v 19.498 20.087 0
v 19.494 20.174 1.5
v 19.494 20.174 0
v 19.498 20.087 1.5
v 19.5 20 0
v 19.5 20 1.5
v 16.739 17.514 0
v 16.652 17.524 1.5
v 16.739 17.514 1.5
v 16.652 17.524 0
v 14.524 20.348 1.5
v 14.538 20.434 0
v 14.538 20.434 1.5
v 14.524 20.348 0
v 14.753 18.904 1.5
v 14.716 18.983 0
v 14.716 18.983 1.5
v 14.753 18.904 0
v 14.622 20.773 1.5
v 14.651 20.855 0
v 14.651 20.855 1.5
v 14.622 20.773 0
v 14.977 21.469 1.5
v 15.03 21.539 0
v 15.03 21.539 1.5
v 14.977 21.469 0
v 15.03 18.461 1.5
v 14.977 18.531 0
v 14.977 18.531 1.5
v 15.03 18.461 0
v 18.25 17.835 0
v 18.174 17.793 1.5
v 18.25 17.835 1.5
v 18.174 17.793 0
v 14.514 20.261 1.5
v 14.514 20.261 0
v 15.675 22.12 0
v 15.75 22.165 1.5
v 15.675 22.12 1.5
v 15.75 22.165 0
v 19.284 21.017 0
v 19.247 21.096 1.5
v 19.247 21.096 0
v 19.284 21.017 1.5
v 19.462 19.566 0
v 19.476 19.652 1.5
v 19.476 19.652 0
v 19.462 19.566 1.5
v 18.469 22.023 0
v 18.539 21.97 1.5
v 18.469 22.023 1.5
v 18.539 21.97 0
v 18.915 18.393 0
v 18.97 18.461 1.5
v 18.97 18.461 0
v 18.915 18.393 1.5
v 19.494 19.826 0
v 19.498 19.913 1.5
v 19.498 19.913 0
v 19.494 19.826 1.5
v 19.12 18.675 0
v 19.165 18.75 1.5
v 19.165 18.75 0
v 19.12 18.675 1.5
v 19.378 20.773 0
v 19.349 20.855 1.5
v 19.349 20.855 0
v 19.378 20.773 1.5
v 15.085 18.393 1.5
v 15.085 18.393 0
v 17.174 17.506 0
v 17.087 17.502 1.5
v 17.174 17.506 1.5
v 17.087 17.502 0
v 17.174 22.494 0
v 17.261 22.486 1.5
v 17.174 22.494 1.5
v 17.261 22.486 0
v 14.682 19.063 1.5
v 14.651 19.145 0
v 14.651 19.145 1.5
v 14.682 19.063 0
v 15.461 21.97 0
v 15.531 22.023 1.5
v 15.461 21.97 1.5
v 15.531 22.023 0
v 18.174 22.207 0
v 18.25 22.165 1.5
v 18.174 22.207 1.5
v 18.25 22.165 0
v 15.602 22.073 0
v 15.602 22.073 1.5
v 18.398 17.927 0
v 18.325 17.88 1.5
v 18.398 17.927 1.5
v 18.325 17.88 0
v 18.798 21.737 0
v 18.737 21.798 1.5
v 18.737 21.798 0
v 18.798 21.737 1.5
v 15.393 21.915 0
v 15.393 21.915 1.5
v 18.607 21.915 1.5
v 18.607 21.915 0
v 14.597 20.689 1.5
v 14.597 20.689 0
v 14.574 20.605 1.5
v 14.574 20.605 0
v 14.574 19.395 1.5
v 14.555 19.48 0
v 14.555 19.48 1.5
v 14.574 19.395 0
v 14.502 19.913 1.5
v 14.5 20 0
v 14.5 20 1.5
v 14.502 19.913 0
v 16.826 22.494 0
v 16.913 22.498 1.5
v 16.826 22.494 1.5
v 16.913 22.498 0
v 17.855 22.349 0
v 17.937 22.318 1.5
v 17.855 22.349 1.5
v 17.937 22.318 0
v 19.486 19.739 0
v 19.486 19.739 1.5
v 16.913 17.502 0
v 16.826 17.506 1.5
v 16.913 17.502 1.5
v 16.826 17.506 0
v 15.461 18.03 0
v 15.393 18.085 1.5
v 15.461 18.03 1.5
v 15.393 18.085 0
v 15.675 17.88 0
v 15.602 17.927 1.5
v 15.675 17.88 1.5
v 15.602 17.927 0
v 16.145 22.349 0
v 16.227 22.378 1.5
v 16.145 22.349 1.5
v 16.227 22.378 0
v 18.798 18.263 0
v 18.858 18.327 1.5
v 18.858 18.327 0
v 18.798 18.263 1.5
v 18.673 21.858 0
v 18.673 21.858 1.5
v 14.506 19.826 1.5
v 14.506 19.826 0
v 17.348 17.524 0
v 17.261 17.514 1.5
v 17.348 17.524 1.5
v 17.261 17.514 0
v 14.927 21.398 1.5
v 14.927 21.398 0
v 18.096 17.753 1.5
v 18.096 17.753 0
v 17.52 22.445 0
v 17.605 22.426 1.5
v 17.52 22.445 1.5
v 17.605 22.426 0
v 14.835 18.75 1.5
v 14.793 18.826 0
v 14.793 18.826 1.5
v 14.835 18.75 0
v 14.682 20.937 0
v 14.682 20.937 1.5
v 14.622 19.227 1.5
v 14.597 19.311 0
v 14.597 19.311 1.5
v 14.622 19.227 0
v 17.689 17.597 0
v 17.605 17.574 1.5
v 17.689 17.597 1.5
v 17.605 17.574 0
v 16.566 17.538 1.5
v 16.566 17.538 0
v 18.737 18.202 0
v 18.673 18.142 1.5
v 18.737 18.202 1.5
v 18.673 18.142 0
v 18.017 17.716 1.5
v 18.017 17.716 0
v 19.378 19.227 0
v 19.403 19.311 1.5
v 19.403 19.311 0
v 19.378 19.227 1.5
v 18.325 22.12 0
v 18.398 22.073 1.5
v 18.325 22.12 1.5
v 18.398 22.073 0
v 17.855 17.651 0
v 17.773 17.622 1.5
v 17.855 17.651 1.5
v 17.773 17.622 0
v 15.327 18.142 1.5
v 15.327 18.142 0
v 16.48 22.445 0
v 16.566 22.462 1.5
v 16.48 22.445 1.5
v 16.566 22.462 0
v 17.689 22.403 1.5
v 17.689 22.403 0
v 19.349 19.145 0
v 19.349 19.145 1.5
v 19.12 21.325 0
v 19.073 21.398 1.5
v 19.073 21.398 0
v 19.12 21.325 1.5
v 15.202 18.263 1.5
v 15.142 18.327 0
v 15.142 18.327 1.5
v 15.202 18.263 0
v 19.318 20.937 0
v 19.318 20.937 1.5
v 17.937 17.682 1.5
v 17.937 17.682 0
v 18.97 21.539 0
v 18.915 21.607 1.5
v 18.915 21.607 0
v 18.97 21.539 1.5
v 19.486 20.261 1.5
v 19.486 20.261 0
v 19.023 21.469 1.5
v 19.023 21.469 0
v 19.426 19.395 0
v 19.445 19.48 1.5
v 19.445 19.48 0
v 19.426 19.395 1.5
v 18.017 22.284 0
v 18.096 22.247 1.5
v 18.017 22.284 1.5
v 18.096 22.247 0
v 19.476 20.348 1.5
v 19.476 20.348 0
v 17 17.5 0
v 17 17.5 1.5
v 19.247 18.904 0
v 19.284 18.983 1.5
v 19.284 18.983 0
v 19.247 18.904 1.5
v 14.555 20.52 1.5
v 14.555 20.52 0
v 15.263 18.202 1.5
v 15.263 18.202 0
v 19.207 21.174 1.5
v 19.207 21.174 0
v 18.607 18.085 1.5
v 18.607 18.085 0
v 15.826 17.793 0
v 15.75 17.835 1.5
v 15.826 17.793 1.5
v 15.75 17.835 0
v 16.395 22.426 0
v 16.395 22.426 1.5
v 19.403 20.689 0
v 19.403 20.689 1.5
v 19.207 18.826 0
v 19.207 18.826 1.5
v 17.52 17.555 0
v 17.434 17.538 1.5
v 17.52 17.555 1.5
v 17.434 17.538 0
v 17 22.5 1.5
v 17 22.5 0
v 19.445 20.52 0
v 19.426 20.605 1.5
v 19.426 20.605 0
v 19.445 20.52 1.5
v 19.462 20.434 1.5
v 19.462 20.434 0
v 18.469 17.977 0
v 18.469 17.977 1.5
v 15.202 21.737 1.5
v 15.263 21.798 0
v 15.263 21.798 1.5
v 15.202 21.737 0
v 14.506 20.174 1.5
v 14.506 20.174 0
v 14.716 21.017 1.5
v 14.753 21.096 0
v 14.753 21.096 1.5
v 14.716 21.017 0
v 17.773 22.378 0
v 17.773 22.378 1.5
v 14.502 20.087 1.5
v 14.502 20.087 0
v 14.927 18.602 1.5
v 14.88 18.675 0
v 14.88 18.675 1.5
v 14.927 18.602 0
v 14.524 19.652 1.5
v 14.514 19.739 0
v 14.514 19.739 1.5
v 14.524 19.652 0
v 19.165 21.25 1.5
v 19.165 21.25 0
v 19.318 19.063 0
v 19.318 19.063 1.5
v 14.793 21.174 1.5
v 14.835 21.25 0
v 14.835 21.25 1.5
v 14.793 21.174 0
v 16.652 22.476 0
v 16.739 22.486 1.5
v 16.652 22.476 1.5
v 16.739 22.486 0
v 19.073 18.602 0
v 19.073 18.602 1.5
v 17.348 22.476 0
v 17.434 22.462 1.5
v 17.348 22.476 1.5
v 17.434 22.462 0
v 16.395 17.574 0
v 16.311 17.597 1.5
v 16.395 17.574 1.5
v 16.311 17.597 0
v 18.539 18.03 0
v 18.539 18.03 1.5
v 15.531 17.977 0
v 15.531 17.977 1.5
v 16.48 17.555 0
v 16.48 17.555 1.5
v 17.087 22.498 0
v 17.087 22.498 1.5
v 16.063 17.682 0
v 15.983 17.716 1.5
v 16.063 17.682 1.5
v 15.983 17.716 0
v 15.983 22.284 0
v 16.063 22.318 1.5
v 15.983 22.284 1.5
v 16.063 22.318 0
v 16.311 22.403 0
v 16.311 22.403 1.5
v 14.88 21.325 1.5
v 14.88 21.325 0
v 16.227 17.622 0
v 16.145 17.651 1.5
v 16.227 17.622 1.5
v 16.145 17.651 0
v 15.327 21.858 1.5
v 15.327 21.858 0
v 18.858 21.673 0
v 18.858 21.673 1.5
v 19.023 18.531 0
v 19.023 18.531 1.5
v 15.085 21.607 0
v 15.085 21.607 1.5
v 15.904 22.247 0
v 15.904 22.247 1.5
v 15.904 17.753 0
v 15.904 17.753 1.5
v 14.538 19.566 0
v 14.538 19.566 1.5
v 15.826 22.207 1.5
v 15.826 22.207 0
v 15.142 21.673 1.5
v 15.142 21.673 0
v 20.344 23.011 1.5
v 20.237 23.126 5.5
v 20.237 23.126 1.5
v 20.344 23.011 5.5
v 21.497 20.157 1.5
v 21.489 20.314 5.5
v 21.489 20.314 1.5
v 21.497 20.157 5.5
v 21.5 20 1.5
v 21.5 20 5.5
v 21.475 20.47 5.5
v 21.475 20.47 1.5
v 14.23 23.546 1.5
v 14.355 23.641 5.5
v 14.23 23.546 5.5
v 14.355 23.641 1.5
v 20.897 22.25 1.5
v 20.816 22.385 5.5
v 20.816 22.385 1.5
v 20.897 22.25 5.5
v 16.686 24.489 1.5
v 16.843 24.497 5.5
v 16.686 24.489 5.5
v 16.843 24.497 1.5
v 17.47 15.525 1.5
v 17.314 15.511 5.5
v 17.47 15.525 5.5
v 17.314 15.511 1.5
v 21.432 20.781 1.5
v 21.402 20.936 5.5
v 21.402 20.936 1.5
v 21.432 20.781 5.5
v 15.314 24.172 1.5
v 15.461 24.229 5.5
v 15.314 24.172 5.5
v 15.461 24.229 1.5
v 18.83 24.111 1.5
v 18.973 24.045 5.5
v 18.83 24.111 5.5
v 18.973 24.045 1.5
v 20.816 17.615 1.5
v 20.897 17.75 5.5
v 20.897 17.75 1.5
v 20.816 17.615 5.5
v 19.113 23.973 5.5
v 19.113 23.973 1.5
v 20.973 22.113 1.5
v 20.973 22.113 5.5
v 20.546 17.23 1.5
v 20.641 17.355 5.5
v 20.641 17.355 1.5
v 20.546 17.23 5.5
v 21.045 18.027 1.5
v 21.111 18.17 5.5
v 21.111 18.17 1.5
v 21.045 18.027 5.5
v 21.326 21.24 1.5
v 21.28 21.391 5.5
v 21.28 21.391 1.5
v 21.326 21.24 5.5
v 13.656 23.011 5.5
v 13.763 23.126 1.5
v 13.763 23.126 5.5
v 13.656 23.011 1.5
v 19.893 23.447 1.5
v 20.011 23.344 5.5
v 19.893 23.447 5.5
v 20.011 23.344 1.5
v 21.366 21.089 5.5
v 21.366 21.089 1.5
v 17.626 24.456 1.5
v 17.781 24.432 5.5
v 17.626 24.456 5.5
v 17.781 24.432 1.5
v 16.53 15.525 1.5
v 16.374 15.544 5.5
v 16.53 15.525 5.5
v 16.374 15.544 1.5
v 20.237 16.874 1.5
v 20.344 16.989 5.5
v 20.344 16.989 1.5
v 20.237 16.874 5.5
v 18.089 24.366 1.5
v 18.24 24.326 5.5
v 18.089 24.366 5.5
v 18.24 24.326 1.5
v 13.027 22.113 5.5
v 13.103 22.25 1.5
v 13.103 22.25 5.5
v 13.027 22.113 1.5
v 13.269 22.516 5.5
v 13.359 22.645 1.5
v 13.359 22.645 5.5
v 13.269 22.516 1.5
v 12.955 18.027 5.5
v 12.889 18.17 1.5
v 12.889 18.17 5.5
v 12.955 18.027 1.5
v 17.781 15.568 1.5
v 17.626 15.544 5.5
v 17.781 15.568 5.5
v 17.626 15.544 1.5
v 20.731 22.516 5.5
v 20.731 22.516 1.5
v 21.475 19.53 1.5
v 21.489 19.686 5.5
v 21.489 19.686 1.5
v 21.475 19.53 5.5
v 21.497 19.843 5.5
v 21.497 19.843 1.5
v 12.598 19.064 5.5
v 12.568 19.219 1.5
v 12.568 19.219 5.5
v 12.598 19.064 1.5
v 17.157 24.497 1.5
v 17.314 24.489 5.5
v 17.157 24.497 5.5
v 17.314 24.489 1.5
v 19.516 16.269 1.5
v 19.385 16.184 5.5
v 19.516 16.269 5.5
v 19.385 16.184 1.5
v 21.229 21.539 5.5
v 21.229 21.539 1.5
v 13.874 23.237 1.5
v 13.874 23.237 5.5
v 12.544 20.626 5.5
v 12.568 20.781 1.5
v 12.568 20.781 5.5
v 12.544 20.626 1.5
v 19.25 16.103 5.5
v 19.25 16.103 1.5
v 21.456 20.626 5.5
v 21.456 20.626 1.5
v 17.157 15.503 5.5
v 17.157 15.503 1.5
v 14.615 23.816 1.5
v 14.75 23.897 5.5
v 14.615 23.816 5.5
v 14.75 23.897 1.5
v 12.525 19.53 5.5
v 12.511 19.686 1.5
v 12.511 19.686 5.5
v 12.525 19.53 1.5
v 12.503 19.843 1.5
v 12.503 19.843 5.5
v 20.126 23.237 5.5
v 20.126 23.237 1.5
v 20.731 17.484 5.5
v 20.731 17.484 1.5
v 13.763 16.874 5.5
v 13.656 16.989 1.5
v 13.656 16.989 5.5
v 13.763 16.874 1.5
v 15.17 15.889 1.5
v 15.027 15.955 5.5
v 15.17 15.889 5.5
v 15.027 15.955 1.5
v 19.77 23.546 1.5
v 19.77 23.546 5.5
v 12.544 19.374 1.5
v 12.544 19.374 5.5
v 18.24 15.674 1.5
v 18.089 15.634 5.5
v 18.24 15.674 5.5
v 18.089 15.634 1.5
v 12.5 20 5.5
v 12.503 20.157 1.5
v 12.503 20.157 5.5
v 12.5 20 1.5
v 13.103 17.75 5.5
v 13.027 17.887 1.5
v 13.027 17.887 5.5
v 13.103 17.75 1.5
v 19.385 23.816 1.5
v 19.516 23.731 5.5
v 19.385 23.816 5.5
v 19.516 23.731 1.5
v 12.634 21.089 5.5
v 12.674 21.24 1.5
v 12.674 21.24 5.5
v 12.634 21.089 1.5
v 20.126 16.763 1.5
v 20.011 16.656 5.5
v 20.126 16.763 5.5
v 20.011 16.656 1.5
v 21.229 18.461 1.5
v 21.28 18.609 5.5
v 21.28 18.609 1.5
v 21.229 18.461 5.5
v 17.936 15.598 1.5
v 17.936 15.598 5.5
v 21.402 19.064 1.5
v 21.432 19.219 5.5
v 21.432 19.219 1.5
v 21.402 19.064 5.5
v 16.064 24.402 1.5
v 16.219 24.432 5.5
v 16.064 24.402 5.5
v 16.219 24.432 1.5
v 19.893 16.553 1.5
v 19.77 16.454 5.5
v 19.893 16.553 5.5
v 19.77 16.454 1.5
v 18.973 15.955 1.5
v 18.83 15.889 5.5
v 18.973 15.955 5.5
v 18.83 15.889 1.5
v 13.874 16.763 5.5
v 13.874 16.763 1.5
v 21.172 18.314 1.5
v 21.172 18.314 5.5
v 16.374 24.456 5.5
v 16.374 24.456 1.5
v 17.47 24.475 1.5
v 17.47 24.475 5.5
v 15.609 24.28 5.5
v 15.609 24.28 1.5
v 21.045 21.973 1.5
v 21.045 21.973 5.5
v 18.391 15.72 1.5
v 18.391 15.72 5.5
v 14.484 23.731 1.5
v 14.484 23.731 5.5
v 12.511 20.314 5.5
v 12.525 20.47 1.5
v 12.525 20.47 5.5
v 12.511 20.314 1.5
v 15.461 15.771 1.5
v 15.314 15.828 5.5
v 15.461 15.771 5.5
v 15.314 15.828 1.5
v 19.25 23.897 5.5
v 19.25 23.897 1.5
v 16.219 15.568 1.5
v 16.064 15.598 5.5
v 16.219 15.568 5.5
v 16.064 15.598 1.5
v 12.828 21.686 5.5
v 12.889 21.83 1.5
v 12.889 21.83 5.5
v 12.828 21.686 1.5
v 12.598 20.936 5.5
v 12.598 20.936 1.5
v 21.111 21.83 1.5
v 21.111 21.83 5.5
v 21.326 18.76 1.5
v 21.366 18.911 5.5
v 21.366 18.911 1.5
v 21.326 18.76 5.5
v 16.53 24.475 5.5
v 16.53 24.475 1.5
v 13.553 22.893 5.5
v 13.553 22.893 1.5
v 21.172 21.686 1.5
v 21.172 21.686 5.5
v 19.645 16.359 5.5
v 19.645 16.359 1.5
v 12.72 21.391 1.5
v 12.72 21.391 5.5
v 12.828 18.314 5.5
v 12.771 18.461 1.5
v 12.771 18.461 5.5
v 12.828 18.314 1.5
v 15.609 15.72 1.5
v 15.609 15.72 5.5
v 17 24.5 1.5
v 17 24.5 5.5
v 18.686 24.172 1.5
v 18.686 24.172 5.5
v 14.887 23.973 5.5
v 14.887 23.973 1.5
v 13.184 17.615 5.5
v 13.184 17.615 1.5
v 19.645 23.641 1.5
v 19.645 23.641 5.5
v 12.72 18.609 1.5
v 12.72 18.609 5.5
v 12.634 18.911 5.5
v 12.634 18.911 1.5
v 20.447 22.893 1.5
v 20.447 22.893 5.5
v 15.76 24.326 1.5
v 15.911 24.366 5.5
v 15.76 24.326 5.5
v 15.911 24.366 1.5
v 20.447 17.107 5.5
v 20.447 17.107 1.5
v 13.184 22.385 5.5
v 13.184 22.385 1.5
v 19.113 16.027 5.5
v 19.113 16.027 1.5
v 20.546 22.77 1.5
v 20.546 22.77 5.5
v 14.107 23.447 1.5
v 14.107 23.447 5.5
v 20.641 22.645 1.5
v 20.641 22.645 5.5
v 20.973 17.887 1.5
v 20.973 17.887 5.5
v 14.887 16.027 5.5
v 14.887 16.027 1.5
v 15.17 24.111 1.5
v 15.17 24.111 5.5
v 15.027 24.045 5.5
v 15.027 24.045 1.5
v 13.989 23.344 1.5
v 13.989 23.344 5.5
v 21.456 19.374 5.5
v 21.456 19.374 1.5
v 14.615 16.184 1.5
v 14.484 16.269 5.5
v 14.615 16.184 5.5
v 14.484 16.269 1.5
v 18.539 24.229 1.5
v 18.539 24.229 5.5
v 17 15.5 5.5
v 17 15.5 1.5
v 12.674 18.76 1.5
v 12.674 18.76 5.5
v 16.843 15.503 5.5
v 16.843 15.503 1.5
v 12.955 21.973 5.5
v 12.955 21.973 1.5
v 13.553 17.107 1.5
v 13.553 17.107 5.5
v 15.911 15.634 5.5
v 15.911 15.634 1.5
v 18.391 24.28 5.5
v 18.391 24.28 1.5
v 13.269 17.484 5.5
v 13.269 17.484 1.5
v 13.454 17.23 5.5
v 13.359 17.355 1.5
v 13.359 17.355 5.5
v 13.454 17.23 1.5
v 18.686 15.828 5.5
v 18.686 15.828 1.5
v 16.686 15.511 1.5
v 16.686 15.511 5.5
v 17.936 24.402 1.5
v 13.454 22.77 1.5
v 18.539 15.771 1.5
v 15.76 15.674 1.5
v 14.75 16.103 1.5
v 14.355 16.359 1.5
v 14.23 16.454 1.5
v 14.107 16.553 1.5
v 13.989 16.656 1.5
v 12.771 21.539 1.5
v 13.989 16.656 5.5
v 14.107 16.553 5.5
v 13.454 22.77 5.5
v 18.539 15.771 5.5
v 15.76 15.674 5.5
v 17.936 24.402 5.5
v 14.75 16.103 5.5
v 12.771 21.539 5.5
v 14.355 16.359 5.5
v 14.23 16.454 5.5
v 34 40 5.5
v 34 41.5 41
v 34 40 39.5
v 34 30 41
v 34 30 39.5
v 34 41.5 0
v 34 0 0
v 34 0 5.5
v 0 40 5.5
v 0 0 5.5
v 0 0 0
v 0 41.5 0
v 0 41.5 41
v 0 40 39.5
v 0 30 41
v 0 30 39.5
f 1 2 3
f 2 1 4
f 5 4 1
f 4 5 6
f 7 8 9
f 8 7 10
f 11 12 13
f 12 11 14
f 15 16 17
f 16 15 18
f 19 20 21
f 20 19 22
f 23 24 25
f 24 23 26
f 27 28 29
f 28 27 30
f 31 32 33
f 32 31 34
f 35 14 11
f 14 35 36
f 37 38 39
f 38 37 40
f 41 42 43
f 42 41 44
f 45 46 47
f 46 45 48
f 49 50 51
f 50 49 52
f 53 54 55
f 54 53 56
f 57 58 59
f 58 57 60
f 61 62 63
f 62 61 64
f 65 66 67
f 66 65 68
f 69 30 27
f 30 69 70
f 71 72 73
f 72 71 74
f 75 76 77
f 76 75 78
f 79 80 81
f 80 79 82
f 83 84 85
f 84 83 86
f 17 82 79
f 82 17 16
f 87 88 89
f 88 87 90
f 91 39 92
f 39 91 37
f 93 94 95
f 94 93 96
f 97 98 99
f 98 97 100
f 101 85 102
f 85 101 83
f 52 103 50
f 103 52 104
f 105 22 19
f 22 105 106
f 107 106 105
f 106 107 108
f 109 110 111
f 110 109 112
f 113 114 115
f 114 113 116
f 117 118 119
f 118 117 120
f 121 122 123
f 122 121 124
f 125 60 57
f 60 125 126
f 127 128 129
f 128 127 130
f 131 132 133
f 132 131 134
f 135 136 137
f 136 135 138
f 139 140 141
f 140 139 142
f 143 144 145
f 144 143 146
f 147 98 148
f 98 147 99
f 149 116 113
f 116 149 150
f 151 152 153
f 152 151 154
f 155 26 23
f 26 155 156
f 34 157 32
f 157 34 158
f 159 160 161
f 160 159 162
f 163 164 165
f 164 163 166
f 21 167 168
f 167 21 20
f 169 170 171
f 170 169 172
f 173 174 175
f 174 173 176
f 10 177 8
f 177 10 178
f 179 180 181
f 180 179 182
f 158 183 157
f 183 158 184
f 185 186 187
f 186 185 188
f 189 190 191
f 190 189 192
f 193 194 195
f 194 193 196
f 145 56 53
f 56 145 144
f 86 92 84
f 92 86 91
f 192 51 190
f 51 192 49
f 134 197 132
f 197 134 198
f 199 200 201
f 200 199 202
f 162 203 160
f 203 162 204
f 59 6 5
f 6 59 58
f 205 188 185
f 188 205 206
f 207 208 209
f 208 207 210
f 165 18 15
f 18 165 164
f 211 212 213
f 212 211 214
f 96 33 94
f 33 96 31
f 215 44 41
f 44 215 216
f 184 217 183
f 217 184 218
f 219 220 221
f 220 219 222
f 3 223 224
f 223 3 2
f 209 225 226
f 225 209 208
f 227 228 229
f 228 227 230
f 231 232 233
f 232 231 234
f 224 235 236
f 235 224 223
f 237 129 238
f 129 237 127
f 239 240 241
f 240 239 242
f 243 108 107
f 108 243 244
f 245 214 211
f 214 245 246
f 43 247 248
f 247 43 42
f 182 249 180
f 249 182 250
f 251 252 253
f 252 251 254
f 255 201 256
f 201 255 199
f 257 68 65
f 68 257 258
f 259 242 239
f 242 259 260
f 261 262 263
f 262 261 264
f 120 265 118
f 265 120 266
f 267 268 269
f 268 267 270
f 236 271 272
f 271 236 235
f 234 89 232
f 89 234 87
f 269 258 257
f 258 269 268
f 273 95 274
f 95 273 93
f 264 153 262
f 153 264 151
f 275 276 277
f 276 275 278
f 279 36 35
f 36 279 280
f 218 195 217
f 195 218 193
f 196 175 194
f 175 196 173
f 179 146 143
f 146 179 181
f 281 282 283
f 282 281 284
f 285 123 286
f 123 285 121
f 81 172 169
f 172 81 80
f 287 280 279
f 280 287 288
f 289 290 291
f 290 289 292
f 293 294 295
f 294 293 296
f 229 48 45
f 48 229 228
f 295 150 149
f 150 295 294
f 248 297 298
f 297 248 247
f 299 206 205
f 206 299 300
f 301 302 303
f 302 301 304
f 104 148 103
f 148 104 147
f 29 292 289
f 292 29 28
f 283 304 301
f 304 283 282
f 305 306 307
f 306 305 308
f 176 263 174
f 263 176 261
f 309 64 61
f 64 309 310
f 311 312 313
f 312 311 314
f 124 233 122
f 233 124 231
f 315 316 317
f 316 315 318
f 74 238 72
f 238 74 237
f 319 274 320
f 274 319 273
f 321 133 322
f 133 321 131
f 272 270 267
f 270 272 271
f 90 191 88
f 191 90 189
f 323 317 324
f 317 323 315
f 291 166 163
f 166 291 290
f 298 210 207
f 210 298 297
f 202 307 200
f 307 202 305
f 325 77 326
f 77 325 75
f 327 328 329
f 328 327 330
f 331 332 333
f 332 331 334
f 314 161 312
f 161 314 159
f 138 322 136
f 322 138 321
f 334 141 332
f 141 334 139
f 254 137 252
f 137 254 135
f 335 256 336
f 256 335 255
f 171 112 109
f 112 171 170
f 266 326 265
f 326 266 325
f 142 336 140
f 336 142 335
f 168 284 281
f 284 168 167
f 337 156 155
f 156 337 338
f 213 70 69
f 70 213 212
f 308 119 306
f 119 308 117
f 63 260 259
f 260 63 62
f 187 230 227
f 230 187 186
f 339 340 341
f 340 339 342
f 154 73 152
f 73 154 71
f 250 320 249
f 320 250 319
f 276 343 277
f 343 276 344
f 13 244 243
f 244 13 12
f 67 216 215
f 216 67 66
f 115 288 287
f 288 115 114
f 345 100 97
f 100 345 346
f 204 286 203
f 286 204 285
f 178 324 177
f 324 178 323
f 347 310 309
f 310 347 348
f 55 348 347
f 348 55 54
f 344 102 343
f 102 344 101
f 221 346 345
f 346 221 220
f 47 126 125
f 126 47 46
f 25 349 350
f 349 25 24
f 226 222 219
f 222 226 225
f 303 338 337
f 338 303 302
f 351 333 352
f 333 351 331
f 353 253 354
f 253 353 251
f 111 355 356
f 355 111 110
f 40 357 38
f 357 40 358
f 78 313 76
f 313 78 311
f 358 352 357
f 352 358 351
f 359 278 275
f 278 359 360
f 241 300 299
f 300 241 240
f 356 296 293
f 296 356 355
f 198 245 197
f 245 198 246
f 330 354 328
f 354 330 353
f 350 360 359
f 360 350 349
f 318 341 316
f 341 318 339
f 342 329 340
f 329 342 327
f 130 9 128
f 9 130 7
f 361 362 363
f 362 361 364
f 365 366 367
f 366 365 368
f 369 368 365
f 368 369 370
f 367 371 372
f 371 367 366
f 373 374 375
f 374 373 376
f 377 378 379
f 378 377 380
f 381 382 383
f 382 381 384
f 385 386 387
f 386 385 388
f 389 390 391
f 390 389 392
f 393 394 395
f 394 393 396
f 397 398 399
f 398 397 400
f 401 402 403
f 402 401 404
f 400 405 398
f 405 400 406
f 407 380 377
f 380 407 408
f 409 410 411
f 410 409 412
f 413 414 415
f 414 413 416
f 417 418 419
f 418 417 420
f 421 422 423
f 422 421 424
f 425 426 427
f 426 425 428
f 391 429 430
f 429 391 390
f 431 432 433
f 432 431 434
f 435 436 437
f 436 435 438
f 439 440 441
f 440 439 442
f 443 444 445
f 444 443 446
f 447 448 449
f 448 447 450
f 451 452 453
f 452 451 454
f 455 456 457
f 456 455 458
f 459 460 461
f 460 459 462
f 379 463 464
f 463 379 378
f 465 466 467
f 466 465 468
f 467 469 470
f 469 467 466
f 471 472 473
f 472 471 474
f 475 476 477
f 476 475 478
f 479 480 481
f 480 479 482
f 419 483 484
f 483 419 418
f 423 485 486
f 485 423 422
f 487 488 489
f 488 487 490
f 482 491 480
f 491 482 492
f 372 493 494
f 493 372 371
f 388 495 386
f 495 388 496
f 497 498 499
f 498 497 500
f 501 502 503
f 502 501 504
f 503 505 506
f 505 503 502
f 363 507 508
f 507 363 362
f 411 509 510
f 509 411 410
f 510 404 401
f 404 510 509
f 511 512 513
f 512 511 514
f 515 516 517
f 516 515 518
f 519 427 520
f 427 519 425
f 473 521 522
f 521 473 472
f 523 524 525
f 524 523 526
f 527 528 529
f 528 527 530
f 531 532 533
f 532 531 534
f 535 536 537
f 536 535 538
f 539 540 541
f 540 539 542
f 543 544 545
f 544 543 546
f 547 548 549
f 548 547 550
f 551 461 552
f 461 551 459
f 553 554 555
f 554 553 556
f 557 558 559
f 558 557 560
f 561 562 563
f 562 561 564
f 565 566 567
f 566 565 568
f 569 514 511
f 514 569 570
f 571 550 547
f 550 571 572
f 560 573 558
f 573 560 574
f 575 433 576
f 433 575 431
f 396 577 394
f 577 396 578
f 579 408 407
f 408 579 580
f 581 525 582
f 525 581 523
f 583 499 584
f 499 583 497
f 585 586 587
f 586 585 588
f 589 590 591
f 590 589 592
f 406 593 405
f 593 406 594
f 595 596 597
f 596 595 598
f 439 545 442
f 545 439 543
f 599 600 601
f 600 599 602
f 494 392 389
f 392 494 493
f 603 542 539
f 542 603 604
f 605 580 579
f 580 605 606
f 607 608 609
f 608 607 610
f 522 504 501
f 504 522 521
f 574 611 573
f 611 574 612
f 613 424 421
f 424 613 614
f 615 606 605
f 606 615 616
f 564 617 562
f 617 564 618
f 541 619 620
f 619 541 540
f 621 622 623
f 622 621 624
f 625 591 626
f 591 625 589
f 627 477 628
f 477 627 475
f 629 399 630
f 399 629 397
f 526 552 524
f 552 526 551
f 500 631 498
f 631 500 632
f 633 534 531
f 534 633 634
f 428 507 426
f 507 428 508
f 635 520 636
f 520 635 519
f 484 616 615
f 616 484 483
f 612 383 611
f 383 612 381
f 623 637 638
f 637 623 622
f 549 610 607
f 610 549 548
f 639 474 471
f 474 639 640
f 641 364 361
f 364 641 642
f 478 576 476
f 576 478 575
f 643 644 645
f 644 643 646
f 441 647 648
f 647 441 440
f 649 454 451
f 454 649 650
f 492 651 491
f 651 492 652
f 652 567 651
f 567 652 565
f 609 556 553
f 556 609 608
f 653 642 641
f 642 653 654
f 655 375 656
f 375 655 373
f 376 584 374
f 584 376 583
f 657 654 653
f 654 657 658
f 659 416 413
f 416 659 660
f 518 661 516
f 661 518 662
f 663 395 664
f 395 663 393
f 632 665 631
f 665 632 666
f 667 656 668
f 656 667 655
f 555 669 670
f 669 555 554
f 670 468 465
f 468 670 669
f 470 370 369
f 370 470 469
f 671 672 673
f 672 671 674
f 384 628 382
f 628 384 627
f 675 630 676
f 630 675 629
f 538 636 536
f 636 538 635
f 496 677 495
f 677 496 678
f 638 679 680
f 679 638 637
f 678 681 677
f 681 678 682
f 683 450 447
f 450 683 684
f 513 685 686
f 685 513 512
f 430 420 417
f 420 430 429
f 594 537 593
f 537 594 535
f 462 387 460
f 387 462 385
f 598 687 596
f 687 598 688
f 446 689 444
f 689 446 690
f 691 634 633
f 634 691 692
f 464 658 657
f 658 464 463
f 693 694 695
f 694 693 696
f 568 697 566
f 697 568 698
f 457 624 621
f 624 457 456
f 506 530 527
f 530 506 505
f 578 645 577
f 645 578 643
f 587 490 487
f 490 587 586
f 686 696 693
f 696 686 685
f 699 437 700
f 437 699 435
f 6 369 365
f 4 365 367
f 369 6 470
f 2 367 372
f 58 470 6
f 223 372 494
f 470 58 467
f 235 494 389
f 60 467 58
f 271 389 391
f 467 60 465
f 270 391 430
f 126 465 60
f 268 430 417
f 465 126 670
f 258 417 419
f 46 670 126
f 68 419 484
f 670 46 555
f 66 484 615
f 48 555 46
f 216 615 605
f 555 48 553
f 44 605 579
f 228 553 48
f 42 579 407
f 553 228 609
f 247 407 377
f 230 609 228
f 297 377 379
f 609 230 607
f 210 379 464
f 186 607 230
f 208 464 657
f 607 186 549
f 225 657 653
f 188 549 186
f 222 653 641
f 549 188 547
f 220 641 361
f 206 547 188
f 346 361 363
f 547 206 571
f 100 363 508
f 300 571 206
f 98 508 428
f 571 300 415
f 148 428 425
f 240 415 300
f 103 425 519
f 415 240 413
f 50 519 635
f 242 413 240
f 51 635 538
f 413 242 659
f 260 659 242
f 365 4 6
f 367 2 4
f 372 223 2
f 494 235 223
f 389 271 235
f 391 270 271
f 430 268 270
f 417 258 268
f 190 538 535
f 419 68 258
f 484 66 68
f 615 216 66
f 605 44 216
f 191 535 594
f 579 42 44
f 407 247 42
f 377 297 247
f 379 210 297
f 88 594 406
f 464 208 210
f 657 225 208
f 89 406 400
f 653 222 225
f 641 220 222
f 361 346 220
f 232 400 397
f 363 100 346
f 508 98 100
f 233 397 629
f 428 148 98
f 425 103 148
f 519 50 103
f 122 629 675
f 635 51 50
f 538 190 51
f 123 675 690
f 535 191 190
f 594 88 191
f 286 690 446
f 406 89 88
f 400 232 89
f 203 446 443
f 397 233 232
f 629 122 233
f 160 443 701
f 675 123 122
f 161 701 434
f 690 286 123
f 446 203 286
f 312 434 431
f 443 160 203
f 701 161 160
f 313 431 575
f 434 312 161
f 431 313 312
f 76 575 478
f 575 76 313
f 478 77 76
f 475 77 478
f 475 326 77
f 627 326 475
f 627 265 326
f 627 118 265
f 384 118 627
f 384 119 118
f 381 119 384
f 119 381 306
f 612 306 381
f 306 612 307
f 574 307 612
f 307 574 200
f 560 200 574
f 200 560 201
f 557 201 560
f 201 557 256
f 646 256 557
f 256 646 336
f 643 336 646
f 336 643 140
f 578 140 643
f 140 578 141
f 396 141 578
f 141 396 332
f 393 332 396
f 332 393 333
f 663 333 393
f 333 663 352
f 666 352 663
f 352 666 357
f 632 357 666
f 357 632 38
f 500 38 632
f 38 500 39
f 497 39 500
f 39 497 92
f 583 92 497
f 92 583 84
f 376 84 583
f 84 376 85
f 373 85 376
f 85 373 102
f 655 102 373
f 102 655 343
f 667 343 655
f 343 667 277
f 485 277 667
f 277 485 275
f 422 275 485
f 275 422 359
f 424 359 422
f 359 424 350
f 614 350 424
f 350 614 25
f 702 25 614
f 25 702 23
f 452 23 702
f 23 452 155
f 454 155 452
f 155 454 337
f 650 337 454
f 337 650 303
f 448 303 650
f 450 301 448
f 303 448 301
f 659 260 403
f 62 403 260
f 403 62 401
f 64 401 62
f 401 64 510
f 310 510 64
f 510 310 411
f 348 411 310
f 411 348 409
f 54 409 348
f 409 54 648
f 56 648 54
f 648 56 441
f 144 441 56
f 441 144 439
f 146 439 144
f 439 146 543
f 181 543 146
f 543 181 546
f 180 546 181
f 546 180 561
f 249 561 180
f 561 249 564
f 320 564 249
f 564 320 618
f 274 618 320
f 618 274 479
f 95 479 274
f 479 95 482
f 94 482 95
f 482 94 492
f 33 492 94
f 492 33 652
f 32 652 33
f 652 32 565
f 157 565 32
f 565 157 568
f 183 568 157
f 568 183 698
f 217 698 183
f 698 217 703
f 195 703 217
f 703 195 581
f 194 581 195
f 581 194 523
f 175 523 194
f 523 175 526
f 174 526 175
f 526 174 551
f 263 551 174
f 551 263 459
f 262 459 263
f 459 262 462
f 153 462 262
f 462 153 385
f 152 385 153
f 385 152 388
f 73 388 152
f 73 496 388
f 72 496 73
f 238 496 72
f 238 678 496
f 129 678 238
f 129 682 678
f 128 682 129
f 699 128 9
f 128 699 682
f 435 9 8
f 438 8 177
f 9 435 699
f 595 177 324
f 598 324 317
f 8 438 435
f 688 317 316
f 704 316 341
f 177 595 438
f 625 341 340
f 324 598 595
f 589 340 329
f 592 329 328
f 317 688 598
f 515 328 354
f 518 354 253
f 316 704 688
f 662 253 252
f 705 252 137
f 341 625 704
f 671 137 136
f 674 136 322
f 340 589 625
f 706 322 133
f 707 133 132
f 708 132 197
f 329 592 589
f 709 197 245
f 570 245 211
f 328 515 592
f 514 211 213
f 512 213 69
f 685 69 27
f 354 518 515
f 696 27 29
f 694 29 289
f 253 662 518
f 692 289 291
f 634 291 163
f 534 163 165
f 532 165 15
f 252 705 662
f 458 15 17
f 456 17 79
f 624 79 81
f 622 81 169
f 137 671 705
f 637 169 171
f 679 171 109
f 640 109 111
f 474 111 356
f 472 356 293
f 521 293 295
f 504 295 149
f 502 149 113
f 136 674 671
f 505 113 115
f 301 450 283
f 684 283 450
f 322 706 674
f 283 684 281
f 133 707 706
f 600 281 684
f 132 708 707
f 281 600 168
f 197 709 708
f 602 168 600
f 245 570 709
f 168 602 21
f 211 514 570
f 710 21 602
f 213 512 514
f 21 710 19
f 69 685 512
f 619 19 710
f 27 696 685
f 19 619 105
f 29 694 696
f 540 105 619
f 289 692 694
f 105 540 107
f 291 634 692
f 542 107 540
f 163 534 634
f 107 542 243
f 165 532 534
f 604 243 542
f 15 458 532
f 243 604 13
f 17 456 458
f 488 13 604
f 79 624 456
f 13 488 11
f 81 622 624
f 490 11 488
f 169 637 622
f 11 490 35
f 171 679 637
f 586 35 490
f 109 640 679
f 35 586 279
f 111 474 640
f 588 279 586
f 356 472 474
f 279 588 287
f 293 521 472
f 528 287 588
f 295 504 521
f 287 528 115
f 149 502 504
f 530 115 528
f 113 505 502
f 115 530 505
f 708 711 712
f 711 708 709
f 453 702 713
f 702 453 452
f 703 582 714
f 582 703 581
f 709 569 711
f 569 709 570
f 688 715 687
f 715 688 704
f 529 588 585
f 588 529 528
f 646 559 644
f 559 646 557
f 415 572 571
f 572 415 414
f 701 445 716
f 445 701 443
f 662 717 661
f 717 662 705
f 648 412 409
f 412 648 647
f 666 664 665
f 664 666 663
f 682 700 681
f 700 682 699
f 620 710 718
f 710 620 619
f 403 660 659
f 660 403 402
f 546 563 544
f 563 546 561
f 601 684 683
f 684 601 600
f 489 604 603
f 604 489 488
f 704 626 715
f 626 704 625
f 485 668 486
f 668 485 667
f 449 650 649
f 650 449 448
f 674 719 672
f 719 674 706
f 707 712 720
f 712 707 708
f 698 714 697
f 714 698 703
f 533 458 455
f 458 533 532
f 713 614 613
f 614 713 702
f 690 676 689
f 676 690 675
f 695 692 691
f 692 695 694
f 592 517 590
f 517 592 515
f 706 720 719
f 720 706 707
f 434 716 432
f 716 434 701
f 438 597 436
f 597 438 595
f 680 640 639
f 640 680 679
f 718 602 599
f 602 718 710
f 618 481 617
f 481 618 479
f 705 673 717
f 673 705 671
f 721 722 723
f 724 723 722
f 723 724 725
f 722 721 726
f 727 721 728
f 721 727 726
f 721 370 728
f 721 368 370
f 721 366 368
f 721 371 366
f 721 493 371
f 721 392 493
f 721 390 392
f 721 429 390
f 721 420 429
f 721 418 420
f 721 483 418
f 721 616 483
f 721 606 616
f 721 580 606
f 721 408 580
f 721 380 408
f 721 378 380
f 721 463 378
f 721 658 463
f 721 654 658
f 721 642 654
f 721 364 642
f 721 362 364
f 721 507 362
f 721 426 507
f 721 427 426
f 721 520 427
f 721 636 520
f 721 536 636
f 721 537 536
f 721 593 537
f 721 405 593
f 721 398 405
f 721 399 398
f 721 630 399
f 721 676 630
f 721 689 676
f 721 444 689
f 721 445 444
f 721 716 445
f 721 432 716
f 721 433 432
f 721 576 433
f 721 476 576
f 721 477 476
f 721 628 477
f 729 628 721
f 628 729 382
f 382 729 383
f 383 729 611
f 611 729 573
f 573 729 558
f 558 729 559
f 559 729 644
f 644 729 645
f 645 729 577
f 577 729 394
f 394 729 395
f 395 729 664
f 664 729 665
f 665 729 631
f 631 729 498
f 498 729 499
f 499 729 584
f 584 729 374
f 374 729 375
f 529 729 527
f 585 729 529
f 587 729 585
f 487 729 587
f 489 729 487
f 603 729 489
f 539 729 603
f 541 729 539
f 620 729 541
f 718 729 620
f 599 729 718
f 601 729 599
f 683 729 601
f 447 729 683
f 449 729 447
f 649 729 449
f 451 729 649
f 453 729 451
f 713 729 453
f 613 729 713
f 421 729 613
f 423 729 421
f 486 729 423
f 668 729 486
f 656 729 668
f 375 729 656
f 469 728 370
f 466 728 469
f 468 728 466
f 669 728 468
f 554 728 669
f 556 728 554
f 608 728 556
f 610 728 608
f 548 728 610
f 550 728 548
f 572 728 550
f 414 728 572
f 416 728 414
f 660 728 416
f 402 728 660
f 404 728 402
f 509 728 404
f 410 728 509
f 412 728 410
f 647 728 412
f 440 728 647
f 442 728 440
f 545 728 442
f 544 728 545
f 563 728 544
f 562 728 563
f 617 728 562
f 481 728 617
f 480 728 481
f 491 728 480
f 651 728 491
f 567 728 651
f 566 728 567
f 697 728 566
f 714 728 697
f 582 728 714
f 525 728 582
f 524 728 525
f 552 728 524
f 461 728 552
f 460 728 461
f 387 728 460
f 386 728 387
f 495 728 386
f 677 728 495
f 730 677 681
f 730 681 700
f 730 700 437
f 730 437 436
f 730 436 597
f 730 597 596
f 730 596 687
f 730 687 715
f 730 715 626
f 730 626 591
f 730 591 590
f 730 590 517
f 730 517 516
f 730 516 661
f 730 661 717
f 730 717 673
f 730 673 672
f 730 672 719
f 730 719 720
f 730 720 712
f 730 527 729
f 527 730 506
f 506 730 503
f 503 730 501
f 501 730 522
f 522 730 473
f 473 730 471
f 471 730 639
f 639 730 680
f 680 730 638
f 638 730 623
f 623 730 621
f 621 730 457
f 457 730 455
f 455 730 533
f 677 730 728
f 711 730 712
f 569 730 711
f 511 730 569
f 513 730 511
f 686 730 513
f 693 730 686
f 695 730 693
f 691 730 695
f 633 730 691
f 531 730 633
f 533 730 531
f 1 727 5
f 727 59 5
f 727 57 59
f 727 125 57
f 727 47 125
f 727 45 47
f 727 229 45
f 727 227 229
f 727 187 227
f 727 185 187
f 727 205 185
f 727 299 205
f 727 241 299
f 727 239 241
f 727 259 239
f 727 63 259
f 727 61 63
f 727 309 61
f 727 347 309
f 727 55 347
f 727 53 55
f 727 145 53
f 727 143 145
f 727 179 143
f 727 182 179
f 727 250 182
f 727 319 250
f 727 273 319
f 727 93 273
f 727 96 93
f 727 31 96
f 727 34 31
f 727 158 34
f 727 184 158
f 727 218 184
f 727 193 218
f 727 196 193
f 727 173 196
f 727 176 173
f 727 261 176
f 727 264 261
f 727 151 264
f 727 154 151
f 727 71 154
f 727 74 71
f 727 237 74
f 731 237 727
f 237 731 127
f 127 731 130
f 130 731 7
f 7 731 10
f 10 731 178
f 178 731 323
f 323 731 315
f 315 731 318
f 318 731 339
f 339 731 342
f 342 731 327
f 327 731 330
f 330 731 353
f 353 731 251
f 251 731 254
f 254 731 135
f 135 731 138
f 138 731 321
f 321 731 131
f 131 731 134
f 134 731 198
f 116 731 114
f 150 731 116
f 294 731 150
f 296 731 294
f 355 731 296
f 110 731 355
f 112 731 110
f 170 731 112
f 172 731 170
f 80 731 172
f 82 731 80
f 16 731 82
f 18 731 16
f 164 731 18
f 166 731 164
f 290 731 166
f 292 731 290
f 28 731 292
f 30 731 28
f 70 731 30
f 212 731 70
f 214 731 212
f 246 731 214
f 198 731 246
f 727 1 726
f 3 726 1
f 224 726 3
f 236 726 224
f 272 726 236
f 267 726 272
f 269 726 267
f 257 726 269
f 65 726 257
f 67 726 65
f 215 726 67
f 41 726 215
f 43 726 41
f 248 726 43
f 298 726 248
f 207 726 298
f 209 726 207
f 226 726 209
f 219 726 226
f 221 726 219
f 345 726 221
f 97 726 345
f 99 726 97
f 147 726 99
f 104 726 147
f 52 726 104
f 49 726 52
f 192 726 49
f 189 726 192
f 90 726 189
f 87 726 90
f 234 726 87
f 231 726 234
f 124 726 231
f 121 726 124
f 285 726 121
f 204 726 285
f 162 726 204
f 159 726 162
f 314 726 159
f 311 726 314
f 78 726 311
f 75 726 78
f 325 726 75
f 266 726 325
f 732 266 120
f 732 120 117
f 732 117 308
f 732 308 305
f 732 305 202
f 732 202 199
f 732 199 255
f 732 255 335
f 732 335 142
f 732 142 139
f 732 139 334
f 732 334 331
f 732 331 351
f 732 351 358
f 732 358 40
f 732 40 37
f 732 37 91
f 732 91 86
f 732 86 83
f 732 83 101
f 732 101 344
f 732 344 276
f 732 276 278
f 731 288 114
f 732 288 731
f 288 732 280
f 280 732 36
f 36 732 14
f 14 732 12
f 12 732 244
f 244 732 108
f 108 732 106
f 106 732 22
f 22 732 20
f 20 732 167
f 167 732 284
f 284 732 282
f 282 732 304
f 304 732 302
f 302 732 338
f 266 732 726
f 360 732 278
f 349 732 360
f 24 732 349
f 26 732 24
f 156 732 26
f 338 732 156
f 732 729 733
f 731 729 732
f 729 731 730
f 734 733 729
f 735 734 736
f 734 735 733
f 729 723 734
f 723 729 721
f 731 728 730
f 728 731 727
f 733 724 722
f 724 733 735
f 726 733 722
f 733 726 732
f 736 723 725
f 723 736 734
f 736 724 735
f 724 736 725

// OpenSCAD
HOOK_WIDTH = 34;
HOOK_BASE_DEPTH = 40;
HOOK_TOP_DEPTH = 10;
HOOK_HEIGHT = 34;
WALL_WIDTH = 1.5;
SCREW_HEAD_DEPTH = 4;
SCREW_DIAMETER = 5;
SCREW_HEAD_DIAMETER = 9;
SKIM = .5;

baseHeight = WALL_WIDTH + SCREW_HEAD_DEPTH;
difference() {
    union() {
        cube([HOOK_WIDTH, HOOK_BASE_DEPTH, baseHeight]);

        translate([0, HOOK_BASE_DEPTH, 0])
        cube([HOOK_WIDTH, WALL_WIDTH, HOOK_HEIGHT + WALL_WIDTH + baseHeight]);

        translate([0, HOOK_BASE_DEPTH - HOOK_TOP_DEPTH, baseHeight + HOOK_HEIGHT])
        cube([HOOK_WIDTH, HOOK_TOP_DEPTH, WALL_WIDTH]);
    }

    union() {
        translate([HOOK_WIDTH / 2, HOOK_BASE_DEPTH / 2, -SKIM])
        cylinder(h = baseHeight + SKIM * 2, d = SCREW_DIAMETER, $fn=180);

        translate([HOOK_WIDTH / 2, HOOK_BASE_DEPTH / 2, WALL_WIDTH])
        cylinder(h = SCREW_HEAD_DEPTH + SKIM, d = SCREW_HEAD_DIAMETER, $fn=180);
    }
}
